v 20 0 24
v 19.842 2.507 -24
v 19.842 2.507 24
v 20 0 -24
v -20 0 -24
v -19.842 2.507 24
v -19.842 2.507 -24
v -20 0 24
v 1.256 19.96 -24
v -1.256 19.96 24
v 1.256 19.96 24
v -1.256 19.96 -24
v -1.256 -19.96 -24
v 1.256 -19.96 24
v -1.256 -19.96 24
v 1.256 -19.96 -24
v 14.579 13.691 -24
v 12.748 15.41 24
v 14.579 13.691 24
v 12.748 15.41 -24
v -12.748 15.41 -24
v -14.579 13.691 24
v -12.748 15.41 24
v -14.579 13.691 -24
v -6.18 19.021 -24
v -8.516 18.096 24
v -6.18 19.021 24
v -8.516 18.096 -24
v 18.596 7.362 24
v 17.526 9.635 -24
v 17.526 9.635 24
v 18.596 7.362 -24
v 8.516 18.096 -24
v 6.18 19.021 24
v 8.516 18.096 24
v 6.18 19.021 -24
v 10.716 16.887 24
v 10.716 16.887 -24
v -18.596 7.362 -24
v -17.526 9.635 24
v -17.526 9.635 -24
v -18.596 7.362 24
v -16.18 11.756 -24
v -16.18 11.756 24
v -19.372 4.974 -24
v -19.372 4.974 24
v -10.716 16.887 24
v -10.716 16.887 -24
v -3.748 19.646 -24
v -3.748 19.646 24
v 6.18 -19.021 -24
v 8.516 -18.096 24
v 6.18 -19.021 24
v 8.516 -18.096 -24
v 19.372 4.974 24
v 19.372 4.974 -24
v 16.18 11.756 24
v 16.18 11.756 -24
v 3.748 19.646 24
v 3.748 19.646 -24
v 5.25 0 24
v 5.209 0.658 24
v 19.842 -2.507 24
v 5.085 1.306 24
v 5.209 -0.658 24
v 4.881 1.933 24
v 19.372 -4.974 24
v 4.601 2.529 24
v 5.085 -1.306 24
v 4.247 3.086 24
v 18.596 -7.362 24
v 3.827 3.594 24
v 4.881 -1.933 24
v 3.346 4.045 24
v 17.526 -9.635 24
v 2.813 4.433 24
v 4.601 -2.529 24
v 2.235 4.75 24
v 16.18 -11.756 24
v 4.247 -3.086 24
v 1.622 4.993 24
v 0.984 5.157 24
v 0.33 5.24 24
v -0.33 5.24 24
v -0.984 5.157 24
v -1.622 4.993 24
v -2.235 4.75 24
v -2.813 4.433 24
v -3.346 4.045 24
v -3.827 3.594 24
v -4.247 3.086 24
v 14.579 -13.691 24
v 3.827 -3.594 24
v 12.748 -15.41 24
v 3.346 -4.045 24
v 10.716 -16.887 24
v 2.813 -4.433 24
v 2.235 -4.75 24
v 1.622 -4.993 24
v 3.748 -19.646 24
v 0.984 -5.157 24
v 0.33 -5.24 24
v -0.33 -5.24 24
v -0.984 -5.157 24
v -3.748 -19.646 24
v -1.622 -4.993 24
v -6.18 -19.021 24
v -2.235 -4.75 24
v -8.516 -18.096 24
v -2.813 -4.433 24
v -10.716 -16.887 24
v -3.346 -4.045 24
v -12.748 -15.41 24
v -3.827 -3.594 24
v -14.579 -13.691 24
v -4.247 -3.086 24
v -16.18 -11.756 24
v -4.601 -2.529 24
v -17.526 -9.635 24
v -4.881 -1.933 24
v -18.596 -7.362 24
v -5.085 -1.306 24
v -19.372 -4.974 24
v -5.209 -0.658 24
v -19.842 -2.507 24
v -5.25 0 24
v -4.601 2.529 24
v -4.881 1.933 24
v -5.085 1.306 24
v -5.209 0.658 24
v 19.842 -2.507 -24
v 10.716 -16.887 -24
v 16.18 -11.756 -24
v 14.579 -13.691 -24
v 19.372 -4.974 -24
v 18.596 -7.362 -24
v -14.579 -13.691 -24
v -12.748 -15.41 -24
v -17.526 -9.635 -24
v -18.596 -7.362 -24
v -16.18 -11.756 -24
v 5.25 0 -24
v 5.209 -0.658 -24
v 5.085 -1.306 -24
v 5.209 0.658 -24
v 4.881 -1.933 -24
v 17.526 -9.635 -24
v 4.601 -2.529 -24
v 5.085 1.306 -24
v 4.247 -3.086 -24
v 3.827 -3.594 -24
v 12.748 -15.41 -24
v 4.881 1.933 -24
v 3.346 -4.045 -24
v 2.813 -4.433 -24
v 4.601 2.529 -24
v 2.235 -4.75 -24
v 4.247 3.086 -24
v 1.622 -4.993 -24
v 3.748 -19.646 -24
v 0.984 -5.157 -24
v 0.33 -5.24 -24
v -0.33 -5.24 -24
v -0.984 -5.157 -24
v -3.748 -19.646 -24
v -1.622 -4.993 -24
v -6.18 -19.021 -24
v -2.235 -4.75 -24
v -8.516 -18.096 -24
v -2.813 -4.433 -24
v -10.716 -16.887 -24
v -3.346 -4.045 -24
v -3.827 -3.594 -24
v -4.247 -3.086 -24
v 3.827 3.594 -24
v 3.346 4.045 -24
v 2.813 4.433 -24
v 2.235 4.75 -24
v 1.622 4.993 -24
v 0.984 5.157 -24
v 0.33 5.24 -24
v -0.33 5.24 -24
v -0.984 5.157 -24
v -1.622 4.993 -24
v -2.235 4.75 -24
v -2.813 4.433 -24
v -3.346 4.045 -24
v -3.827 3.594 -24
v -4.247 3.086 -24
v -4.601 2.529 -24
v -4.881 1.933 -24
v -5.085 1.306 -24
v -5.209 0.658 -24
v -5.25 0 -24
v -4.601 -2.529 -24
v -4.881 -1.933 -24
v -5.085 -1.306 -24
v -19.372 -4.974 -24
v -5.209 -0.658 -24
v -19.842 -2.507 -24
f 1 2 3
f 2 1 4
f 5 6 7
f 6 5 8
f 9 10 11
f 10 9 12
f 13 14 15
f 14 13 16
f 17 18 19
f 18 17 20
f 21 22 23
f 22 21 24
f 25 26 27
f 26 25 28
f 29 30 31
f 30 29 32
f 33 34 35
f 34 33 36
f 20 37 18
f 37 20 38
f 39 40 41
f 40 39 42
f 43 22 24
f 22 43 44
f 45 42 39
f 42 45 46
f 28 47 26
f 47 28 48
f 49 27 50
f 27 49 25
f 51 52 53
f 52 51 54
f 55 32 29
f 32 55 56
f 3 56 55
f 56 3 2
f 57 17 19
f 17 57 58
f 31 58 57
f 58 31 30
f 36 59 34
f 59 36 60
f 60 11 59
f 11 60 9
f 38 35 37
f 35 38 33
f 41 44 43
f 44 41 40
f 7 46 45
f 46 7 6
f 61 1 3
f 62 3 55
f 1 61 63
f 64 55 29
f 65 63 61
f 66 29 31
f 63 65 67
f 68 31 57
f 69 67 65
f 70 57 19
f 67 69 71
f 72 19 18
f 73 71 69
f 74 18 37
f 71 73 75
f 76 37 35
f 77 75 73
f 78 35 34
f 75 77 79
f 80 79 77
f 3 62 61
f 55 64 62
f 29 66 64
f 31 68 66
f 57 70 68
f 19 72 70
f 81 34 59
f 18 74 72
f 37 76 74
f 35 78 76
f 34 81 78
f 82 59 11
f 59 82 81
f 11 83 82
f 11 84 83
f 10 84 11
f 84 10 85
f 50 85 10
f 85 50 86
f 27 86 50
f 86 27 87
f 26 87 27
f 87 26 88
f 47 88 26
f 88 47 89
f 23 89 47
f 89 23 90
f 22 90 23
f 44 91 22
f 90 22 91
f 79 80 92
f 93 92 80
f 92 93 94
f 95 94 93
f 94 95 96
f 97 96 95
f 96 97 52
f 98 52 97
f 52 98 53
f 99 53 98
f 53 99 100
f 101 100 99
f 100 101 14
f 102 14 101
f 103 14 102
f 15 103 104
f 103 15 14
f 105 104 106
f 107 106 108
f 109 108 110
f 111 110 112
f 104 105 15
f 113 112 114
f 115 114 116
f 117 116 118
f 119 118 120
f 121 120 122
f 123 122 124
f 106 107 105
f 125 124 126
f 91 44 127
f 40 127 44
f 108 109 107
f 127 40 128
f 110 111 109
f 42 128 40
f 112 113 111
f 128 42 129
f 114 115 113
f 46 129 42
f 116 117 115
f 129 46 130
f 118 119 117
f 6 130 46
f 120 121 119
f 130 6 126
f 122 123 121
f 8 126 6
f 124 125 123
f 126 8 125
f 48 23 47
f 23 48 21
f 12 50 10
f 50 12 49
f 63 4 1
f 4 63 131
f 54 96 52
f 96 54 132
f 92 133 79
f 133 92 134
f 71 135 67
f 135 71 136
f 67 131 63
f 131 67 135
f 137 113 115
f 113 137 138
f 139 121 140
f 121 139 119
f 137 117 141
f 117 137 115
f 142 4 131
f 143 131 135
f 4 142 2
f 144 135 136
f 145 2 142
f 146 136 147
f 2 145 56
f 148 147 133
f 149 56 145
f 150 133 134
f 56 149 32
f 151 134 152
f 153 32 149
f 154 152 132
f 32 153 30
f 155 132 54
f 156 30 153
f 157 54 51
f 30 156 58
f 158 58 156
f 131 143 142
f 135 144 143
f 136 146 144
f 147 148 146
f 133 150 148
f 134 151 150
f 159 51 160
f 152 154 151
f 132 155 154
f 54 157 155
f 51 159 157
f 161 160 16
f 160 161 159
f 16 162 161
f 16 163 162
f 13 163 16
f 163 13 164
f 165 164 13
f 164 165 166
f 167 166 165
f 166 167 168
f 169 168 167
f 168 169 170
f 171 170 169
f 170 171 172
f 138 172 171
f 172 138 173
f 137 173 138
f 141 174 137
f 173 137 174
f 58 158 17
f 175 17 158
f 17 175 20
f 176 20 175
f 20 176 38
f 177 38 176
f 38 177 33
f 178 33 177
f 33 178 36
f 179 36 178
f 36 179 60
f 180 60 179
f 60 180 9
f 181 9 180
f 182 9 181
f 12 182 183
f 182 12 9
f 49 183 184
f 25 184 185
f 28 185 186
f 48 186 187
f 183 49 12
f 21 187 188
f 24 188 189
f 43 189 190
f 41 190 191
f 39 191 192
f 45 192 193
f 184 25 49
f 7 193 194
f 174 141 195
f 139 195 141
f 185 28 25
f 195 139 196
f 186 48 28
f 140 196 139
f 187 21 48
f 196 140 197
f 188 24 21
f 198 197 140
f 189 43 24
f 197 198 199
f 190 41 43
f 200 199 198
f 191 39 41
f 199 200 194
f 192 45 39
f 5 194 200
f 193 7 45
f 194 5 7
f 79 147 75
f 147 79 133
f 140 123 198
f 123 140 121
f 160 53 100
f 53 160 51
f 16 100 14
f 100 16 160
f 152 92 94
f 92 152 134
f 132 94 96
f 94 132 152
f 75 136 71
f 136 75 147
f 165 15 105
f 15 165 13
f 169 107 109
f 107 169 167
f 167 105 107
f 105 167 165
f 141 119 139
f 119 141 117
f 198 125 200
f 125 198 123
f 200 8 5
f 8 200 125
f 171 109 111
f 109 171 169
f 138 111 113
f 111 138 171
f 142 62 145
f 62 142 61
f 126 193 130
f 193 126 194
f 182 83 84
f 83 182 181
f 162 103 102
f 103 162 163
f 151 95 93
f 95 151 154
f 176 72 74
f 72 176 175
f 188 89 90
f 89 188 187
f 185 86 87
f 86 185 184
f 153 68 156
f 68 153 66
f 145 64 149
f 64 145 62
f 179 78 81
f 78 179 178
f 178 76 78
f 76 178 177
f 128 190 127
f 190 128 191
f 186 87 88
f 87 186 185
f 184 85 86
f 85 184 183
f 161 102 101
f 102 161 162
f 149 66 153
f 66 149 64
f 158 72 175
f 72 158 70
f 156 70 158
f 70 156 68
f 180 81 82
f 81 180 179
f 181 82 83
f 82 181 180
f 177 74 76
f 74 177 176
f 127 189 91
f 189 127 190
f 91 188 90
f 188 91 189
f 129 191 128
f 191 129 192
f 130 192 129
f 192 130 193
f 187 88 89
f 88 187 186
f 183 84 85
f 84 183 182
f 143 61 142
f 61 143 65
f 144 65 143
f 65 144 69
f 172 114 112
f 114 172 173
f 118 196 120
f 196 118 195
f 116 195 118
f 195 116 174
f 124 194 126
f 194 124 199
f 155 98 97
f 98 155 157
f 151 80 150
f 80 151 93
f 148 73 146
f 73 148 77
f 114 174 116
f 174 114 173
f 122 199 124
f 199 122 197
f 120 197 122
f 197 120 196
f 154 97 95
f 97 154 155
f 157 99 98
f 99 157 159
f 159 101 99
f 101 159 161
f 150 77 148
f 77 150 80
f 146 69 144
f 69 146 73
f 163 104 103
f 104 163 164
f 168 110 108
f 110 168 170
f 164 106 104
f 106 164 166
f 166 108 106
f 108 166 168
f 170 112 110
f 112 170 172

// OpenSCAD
$fn = 50;


difference() {
	union() {
		translate(v = [0, 0, -24.0000000000]) {
			cylinder(h = 48, r = 20.0000000000);
		}
	}
	union() {
		translate(v = [0, 0, -100.0000000000]) {
			cylinder(h = 200, r = 5.2500000000);
		}
	}
}
